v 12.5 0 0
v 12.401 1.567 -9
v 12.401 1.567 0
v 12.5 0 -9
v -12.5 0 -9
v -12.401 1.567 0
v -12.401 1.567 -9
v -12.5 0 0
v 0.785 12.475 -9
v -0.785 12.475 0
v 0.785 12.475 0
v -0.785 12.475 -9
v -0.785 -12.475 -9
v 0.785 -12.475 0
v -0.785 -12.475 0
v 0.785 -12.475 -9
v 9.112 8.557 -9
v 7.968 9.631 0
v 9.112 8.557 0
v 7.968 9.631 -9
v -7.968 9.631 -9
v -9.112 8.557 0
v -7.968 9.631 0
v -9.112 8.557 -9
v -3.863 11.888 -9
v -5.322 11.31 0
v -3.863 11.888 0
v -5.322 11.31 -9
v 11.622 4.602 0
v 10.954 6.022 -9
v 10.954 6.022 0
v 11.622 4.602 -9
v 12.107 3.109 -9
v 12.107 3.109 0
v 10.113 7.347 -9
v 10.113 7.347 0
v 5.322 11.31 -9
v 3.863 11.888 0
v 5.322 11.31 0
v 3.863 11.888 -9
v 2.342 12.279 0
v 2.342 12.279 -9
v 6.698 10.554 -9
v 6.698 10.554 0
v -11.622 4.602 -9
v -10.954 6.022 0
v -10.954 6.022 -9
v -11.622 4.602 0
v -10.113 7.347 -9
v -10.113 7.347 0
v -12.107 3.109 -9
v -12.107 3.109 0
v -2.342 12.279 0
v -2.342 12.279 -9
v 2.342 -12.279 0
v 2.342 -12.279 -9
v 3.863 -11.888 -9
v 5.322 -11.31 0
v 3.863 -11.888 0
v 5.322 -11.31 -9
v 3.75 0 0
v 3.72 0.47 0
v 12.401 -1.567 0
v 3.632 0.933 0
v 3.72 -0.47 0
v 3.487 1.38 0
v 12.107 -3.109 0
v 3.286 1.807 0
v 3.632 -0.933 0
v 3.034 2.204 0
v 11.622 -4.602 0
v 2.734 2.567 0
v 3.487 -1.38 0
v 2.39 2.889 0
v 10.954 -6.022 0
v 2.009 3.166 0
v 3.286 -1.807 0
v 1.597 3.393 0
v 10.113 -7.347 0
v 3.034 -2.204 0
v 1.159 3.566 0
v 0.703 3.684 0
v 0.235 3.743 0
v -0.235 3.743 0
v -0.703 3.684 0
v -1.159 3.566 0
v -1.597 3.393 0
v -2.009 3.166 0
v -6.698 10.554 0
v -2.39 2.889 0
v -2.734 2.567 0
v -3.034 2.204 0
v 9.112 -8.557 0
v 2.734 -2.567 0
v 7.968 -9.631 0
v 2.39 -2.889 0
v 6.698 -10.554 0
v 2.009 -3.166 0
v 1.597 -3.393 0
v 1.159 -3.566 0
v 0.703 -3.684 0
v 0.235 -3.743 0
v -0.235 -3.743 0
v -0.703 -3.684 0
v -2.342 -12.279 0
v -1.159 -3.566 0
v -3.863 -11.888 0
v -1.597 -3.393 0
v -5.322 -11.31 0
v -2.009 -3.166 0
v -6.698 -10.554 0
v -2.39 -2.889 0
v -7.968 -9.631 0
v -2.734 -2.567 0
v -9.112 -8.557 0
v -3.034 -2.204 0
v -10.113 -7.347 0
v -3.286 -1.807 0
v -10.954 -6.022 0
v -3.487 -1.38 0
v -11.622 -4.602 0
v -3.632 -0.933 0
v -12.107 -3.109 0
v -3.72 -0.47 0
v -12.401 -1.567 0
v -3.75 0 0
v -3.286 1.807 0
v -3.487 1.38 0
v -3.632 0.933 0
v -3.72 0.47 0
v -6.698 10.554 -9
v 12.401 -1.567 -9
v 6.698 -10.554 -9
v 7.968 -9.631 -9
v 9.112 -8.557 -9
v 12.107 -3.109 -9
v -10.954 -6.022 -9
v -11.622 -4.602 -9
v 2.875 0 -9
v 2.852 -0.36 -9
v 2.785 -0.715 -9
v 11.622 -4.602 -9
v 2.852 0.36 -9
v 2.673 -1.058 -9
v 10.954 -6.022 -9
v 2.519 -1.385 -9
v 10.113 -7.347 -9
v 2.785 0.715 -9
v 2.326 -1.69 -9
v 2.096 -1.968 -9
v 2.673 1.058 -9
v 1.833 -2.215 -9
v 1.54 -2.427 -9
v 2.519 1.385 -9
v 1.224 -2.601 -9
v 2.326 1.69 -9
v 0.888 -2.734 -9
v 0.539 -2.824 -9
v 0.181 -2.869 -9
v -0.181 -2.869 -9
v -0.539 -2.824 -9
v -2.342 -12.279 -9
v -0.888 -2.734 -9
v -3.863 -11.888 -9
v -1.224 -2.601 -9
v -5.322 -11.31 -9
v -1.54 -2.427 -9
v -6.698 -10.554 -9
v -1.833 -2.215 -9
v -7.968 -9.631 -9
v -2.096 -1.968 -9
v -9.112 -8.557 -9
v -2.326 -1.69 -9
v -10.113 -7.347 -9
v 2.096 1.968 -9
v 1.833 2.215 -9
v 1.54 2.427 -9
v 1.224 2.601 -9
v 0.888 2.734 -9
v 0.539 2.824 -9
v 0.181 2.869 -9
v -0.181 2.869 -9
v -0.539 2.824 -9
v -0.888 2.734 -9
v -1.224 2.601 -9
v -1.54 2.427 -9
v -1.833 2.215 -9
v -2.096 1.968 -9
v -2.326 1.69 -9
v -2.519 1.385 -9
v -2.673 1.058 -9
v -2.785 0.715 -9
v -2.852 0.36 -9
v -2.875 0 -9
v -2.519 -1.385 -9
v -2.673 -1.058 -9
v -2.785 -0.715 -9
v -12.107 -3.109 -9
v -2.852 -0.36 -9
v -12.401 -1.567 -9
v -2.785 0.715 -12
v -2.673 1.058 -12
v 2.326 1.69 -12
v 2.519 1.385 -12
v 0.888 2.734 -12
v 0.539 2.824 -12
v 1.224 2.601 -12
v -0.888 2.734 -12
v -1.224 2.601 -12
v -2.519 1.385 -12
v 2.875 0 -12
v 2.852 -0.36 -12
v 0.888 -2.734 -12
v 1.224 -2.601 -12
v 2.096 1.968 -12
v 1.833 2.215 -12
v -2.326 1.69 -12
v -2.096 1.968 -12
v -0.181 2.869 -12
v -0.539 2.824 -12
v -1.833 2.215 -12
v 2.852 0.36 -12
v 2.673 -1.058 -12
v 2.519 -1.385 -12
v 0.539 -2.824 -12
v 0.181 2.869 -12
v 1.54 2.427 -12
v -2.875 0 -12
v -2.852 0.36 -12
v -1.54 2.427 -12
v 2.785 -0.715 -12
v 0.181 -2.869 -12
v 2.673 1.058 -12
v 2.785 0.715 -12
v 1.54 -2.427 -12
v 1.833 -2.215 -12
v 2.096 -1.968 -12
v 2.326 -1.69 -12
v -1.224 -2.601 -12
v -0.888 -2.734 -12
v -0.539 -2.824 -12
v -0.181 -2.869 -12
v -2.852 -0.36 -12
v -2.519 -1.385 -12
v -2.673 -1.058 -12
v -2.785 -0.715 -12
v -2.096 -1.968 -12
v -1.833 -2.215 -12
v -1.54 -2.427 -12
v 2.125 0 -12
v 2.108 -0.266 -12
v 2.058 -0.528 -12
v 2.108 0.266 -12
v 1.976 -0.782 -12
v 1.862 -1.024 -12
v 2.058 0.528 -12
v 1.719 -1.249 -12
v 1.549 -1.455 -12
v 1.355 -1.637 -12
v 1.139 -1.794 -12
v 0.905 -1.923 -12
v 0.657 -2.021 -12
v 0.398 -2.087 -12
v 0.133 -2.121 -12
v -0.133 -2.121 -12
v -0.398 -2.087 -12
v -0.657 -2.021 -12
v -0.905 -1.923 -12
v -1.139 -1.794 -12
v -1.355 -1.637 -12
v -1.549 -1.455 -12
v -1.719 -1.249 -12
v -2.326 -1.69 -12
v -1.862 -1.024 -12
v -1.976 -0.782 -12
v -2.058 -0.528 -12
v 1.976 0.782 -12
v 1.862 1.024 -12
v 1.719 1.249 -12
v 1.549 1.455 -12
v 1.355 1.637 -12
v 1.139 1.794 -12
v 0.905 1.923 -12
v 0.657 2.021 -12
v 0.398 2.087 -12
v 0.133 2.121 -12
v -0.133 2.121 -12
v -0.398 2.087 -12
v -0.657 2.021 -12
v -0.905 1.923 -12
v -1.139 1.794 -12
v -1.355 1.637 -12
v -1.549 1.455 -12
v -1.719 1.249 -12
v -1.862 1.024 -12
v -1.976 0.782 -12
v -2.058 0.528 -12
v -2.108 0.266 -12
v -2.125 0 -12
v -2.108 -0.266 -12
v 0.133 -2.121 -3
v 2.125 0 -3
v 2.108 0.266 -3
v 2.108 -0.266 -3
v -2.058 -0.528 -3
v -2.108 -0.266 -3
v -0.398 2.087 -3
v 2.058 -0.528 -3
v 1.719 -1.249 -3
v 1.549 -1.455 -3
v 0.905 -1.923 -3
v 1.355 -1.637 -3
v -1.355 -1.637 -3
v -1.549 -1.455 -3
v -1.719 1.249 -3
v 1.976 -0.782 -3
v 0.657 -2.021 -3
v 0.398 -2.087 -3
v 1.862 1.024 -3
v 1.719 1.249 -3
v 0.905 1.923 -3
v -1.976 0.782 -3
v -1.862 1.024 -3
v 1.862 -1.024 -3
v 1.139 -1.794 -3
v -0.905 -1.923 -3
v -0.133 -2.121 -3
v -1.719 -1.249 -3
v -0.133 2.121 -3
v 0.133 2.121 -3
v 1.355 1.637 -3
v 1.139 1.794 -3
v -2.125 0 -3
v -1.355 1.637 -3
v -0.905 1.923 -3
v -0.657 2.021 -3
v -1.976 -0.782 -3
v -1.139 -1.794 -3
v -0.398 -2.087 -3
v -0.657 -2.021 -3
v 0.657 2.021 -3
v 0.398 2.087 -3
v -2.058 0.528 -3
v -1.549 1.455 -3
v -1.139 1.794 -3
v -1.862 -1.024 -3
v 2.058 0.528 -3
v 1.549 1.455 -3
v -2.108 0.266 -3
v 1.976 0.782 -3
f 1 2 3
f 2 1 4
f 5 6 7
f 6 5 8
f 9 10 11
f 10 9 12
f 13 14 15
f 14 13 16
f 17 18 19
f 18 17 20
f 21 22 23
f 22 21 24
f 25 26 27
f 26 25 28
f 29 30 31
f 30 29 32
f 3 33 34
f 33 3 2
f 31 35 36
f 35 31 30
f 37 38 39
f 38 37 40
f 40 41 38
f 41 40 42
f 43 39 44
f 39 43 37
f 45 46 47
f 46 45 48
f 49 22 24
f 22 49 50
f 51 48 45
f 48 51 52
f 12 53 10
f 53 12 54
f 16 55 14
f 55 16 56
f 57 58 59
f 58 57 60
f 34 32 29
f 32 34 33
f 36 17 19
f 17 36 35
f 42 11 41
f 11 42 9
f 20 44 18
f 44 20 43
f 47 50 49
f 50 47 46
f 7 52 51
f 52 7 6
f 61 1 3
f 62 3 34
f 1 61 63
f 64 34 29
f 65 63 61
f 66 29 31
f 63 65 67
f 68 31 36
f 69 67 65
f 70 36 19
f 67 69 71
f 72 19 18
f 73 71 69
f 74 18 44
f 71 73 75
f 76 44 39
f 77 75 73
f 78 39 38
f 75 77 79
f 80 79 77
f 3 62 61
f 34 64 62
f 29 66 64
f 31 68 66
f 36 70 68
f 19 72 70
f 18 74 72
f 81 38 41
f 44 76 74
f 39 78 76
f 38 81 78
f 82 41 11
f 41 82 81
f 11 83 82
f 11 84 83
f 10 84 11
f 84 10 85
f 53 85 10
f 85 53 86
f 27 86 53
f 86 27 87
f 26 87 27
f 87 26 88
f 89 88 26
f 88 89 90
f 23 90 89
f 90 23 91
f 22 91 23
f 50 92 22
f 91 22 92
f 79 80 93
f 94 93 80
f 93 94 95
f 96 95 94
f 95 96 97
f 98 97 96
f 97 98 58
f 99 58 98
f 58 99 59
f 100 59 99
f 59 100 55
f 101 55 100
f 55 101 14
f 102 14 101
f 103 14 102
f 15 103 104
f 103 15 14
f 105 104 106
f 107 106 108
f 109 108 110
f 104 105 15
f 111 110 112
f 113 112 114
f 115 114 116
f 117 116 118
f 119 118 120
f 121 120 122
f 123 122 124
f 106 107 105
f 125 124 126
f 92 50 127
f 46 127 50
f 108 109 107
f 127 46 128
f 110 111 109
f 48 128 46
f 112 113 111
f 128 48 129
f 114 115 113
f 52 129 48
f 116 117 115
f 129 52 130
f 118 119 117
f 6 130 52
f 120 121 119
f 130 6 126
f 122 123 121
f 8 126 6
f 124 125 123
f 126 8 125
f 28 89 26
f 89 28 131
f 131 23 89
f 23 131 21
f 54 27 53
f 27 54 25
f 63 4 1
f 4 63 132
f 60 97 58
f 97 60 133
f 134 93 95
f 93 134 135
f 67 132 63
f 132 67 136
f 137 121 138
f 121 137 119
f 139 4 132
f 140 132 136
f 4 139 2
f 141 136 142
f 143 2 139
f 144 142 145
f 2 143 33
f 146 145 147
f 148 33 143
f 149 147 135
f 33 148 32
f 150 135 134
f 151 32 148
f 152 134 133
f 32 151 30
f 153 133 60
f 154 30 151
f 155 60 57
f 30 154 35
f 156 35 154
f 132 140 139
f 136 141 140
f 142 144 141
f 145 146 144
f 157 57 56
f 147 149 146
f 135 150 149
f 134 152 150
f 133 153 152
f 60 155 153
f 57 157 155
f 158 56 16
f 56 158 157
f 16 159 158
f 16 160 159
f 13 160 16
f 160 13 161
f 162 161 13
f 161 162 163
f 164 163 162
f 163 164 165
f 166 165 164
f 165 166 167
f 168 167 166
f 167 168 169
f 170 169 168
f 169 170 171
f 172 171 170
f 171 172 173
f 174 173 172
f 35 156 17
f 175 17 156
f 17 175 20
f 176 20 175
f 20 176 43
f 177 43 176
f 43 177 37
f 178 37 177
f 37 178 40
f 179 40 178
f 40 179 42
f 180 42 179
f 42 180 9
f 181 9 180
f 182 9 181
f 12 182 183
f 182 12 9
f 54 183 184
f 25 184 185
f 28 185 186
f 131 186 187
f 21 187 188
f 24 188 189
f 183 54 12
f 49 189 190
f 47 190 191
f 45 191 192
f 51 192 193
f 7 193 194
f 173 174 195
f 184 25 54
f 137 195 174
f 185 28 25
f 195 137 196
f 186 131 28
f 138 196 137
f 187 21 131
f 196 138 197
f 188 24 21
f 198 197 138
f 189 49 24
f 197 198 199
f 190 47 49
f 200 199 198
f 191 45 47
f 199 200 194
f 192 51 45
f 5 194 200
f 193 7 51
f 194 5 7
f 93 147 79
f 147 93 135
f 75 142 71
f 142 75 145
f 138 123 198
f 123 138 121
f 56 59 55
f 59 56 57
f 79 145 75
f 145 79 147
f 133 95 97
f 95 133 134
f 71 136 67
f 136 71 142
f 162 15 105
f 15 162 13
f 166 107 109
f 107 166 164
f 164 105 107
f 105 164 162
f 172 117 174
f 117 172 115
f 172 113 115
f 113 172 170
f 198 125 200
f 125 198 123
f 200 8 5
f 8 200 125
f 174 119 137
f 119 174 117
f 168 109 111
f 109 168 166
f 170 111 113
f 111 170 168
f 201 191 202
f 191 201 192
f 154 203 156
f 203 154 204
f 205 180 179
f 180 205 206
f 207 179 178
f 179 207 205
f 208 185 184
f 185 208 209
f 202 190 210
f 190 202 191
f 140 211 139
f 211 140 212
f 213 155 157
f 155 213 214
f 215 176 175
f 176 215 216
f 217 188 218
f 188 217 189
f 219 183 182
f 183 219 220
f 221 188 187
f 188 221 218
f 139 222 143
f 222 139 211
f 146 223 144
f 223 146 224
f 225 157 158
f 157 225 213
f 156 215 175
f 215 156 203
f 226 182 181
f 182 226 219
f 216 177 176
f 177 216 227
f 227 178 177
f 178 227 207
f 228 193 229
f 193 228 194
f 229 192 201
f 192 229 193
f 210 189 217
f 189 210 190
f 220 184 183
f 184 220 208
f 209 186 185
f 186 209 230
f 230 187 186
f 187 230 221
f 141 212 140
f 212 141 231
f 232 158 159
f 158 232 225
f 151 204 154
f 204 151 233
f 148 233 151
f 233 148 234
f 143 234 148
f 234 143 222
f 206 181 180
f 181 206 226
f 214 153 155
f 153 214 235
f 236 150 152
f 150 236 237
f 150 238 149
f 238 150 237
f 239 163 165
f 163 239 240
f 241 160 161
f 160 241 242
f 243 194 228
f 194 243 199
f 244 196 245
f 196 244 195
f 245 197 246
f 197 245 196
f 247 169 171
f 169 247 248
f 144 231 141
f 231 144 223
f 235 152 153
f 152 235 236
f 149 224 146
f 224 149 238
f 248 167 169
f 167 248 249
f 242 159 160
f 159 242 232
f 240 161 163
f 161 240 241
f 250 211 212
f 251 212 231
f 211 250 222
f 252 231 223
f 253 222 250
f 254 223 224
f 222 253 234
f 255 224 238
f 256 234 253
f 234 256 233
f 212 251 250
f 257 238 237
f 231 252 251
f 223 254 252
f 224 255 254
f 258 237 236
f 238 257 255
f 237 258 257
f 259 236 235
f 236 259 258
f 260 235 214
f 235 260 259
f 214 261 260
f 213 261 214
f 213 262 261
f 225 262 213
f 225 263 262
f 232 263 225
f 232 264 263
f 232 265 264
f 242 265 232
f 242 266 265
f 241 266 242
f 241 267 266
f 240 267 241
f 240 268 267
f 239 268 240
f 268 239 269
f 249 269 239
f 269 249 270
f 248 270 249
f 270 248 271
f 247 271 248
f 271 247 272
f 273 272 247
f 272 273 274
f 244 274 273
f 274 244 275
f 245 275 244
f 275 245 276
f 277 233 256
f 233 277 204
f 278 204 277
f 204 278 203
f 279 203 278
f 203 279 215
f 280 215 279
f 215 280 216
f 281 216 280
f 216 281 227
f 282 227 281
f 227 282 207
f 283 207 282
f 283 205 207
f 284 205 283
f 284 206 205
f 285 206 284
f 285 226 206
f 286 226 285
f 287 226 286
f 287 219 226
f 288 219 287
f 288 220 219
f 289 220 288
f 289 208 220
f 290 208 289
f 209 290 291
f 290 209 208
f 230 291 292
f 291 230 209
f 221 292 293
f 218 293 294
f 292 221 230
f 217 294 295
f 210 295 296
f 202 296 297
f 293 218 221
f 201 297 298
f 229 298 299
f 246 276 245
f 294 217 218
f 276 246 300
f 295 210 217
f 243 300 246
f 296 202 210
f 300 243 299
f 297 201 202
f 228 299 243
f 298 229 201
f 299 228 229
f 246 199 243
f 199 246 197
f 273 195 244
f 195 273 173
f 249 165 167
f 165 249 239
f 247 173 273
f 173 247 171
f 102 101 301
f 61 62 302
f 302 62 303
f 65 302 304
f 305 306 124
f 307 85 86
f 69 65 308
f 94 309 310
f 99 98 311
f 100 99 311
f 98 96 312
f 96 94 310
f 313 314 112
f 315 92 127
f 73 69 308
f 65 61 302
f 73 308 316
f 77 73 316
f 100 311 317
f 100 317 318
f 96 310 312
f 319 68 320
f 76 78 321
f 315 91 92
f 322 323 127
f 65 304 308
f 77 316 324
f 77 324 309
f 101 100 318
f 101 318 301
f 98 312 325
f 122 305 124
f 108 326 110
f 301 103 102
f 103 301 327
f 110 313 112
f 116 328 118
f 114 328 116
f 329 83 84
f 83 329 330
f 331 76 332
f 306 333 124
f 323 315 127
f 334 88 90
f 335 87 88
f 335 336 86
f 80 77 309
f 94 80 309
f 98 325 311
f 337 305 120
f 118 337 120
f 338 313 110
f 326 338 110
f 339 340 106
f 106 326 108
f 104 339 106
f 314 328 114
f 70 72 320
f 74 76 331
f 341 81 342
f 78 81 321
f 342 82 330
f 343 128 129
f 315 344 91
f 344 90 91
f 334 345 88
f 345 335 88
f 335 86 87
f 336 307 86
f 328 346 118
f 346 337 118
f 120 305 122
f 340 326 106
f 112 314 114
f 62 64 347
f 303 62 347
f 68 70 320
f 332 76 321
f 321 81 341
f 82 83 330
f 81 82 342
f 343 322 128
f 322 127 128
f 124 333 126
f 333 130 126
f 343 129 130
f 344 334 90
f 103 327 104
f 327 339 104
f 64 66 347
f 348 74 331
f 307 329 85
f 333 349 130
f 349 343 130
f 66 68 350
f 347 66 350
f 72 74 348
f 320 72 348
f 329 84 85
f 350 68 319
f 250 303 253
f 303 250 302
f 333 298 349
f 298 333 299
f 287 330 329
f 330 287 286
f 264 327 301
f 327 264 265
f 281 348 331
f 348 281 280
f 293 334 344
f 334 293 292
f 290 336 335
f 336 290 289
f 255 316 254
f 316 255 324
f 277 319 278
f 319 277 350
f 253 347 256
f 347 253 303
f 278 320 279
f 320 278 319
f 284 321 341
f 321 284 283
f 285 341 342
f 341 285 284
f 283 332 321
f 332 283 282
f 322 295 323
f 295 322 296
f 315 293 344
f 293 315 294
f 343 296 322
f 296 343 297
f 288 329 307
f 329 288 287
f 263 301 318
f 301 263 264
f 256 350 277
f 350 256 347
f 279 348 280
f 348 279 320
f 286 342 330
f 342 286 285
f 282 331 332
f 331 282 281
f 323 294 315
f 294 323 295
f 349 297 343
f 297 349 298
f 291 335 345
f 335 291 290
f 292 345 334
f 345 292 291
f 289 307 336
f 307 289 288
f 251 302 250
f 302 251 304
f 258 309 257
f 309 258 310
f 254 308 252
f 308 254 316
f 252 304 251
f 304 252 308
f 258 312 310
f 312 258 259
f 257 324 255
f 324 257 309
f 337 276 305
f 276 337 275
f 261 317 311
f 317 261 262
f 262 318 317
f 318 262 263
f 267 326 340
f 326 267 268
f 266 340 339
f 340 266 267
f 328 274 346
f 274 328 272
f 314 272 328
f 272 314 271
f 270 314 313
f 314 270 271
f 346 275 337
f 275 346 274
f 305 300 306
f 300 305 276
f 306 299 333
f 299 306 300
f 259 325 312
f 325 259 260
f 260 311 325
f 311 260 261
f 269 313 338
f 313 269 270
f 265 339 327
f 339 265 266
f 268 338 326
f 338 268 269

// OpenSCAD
$fn = 50;


difference() {
	union() {
		translate(v = [0, 0, -9.0000000000]) {
			cylinder(h = 9, r = 12.5000000000);
		}
		#translate(v = [0, 0, -12.0000000000]) {
			cylinder(h = 12, r = 2.8750000000);
		}
	}
	union() {
		translate(v = [0, 0, 0]) {
			rotate(a = [0, 0, 0]) {
				difference() {
					union() {
						translate(v = [0, 0, -12.0000000000]) {
							cylinder(h = 12, r = 2.0000000000);
						}
						translate(v = [0, 0, -3]) {
							cylinder(h = 3, r1 = 2.1250000000, r2 = 3.7500000000);
						}
						translate(v = [0, 0, -12.0000000000]) {
							cylinder(h = 12, r = 2.1250000000);
						}
						translate(v = [0, 0, -12.0000000000]) {
							cylinder(h = 12, r = 2.0000000000);
						}
					}
					union();
				}
			}
		}
	}
}
